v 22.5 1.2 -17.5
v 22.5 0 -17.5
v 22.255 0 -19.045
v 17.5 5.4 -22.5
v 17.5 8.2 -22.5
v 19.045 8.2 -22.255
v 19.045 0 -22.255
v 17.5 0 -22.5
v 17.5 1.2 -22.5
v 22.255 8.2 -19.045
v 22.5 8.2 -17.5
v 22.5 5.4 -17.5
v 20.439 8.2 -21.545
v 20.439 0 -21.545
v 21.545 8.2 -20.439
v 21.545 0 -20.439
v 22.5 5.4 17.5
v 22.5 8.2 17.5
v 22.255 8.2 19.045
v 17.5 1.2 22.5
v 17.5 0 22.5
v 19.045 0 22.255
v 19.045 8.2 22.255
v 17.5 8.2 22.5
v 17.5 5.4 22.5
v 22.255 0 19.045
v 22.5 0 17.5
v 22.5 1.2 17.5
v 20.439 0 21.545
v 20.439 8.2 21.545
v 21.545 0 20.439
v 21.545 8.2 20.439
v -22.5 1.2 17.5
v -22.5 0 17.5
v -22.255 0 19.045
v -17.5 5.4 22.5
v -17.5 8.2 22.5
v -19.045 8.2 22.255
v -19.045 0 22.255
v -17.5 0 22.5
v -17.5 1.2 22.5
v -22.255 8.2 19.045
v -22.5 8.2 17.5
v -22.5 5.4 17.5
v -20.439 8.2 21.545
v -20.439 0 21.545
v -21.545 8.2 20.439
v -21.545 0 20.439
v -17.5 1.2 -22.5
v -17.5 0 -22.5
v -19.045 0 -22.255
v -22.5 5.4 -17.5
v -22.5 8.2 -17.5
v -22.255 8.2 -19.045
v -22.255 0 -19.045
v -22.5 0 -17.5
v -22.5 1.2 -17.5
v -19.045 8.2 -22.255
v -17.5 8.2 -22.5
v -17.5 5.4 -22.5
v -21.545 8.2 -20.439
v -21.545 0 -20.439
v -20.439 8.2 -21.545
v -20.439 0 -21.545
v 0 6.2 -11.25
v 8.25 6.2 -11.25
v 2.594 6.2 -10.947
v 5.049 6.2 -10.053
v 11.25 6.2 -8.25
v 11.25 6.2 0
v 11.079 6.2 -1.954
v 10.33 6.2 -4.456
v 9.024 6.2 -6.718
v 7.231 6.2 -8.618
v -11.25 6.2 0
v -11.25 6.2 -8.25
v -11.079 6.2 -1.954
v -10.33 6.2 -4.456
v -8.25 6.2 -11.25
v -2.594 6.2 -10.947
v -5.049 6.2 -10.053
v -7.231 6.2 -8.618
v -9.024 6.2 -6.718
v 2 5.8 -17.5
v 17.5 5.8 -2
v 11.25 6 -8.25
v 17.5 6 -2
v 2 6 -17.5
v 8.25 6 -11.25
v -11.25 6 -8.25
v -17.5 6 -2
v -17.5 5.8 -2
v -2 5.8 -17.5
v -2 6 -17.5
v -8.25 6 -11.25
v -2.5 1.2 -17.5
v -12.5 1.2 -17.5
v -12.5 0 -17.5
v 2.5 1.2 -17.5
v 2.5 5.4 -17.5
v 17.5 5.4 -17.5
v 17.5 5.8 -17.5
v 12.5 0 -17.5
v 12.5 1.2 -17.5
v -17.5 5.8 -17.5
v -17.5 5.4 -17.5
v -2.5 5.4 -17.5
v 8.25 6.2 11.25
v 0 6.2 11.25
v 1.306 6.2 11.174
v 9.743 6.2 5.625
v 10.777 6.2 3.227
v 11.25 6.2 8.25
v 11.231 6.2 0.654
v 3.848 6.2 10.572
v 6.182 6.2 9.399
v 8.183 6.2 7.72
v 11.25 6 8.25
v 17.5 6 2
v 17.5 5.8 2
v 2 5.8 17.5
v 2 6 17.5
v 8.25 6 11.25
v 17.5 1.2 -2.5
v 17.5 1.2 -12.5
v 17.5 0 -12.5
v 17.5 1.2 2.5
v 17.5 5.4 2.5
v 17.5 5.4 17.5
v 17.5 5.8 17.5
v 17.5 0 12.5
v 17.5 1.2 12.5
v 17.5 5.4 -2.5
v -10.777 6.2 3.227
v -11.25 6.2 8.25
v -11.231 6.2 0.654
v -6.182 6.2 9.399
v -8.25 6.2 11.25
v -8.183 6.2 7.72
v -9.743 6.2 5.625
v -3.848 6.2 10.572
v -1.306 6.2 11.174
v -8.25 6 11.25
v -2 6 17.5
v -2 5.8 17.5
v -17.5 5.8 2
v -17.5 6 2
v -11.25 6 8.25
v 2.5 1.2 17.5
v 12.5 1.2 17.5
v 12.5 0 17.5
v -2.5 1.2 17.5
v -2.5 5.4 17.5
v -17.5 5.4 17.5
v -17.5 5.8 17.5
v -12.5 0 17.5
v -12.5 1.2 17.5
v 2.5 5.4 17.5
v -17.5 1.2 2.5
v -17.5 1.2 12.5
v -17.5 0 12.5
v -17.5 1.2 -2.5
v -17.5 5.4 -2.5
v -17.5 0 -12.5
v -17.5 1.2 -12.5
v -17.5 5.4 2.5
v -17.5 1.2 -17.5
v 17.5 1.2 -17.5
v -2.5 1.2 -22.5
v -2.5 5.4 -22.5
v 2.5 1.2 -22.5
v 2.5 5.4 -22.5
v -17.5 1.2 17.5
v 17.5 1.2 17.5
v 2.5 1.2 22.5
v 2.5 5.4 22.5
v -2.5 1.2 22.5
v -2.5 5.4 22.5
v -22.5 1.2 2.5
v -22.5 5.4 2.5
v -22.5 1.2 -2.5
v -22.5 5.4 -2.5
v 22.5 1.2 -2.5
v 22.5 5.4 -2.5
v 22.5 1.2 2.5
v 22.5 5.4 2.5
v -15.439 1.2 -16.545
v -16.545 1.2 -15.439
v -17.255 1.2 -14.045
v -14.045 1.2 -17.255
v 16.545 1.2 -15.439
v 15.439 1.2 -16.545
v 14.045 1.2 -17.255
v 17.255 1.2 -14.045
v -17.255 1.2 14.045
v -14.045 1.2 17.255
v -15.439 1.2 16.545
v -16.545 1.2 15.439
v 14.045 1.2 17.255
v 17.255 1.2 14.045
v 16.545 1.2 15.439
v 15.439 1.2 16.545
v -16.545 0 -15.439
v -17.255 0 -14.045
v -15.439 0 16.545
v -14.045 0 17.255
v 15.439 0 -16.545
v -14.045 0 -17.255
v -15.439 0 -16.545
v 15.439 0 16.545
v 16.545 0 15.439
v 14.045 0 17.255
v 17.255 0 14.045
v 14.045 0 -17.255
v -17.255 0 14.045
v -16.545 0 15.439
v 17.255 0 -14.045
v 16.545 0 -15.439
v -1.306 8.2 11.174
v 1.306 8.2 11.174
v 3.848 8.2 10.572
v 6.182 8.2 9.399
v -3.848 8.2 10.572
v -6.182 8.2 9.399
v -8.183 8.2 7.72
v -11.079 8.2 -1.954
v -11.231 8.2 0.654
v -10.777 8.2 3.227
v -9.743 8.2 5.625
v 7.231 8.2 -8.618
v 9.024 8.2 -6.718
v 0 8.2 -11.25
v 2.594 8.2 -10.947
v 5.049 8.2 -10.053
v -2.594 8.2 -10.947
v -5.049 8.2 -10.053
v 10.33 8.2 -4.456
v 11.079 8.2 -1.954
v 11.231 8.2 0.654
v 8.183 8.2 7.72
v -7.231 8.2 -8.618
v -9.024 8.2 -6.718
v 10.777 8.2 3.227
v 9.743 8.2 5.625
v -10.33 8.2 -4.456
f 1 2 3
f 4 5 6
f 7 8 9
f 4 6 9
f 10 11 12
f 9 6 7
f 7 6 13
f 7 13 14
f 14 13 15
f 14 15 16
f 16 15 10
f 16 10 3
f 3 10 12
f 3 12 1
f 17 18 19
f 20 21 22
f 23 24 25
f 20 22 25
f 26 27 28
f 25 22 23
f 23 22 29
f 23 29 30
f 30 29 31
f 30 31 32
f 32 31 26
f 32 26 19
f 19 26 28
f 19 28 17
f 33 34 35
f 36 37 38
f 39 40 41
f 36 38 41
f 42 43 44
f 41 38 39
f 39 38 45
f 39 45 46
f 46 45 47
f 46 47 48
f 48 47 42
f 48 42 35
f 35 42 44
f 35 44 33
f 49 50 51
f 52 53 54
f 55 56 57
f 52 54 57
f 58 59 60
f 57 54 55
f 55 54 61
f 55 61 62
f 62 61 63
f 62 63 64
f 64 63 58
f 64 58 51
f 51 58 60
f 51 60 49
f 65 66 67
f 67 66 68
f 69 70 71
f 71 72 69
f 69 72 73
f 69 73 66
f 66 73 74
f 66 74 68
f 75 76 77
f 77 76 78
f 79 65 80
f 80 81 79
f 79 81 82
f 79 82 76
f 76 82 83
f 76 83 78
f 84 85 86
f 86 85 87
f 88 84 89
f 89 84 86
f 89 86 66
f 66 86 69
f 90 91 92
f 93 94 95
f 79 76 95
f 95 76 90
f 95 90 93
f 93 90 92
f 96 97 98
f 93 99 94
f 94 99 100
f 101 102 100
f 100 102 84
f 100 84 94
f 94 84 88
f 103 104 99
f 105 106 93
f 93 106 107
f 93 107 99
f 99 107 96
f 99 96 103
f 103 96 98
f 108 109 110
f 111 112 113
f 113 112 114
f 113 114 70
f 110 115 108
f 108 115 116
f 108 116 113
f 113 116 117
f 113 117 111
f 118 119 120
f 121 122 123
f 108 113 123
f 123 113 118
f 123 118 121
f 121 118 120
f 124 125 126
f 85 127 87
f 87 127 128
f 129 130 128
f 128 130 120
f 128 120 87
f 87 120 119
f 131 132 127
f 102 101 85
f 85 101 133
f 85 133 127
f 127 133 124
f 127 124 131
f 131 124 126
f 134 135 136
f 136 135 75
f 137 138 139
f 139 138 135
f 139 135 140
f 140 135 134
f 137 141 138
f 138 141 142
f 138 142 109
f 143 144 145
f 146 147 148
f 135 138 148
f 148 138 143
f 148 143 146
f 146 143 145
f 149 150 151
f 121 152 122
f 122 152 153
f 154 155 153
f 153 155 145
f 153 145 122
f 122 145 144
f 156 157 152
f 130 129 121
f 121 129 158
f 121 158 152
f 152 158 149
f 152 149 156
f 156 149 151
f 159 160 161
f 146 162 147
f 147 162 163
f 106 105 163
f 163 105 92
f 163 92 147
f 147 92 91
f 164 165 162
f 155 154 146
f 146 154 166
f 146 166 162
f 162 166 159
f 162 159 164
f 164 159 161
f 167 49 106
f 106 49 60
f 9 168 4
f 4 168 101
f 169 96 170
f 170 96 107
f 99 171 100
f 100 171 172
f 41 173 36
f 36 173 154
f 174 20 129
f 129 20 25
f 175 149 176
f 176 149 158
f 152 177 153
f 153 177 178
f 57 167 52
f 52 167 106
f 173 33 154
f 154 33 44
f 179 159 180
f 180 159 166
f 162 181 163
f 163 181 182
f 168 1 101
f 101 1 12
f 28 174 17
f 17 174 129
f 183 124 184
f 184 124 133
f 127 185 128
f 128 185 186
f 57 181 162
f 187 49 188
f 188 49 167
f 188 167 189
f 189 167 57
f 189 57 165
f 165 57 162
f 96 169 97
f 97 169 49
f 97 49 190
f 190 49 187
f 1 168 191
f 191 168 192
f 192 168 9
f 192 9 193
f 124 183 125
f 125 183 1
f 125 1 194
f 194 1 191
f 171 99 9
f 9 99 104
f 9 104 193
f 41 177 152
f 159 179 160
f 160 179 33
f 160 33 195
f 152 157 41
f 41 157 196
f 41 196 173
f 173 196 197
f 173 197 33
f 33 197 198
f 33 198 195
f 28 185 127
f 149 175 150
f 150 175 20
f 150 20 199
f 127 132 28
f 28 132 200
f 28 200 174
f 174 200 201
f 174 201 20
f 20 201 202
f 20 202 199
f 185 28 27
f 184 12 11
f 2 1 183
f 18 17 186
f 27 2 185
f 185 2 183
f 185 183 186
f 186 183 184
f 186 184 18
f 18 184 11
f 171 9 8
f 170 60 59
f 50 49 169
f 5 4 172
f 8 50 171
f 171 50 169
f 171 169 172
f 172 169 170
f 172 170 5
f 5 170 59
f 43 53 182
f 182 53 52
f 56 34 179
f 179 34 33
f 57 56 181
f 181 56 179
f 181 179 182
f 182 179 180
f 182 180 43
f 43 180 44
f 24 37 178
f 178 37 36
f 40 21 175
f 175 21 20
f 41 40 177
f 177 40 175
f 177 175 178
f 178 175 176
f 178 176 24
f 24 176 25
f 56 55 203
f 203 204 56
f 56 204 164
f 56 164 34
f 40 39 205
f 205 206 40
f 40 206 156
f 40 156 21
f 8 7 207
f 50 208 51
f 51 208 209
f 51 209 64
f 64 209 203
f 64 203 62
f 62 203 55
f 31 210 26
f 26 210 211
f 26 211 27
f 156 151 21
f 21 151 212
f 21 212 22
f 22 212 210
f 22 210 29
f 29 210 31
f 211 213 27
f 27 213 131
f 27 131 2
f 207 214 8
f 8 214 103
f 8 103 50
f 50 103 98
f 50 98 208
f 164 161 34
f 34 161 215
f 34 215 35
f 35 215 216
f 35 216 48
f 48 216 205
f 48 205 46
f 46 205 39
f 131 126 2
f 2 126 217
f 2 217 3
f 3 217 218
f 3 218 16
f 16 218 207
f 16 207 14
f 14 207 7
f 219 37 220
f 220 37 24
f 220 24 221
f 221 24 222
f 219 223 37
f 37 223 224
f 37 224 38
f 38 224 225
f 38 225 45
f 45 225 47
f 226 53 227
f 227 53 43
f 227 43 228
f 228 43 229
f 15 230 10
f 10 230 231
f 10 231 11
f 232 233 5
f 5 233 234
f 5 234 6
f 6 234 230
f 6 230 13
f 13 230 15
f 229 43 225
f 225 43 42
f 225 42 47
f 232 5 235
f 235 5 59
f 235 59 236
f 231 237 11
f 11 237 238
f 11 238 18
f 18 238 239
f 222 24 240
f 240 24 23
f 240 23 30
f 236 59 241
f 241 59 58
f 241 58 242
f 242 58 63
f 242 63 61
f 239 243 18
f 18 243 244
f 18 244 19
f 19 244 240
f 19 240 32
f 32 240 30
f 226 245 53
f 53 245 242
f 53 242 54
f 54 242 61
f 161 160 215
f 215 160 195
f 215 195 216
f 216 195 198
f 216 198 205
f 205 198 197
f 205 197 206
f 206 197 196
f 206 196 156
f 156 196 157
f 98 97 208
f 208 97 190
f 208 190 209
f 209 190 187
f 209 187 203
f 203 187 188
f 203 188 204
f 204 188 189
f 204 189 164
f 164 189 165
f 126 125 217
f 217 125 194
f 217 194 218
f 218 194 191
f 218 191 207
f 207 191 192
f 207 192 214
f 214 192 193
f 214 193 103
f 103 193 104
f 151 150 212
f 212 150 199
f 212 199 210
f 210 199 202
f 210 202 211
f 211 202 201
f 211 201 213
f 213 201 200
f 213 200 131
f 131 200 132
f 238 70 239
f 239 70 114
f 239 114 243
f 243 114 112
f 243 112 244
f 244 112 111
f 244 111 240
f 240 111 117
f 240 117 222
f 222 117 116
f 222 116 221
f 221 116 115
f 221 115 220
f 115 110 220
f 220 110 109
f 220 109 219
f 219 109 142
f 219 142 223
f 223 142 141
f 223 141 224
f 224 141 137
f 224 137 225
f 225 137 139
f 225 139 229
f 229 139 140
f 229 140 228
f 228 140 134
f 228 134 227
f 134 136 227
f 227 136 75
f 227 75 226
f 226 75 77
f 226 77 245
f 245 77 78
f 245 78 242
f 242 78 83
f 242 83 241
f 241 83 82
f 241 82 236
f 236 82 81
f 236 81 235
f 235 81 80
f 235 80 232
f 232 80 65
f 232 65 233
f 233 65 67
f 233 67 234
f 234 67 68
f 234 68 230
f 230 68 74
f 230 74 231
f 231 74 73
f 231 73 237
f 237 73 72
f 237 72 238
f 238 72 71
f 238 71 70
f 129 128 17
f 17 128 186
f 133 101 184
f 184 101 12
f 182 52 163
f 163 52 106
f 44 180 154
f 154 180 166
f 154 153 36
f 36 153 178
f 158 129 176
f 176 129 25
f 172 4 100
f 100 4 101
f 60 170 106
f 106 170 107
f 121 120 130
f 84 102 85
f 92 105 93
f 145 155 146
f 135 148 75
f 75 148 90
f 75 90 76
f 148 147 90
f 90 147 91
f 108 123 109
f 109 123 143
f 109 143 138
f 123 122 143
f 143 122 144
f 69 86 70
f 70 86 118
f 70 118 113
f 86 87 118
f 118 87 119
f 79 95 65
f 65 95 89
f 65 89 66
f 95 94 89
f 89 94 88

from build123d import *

# Parameters (mm, degrees)
ESBO_O1_W                = 45
ESBO_O1_H                = 45
BASE_DEPTH               = 1.2
ESBO_O2_W                = 5
ESBO_O2_H                = 5
PAREDES_DEPTH            = 5
ESBO_O3_W                = 45
ESBO_O3_H                = 45
TELHADO_DEPTH            = 2
CORTE_DA_BASE_DEPTH      = 2
ESBO_O5_R                = 11.25
CORTE_DO_C_RCULO_DEPTH   = 2
PONTE_1_REACH            = 48.621
ESBO_O6_W                = 5
ESBO_O6_H                = 0.8
PONTE_2_REACH            = 48.621
ESBO_O7_W                = 5
ESBO_O7_H                = 0.8
RESSALTO_EXTRUS_O6_DEPTH = 0.4
RESSALTO_EXTRUS_O7_DEPTH = 0.2
FILETE1_R                = 5
FILETE2_R                = 5
FILETE3_R                = 5
FILETE4_R                = 5


with BuildPart() as part:
    # Esboço1 → Base (new body)
    with BuildSketch(Plane(origin=(0, 0, 0), x_dir=(1, 0, 0), z_dir=(0, 1, 0))):
        Rectangle(ESBO_O1_W, ESBO_O1_H)
    extrude(amount=BASE_DEPTH)

    # Esboço2 → Paredes (add)
    with BuildSketch(Plane(origin=(0, 1.2, 0), x_dir=(1, 0, 0), z_dir=(0, 1, 0))):
        with Locations((-20, 20)):
            Rectangle(ESBO_O2_W, ESBO_O2_H)
        with Locations((20, 20)):
            Rectangle(ESBO_O2_W, ESBO_O2_H)
        with Locations((20, -20)):
            Rectangle(ESBO_O2_W, ESBO_O2_H)
        with Locations((-20, -20)):
            Rectangle(ESBO_O2_W, ESBO_O2_H)
        with Locations((0, 20)):
            Rectangle(ESBO_O2_W, ESBO_O2_H)
        with Locations((-20, 0)):
            Rectangle(ESBO_O2_W, ESBO_O2_H)
        with Locations((20, 0)):
            Rectangle(ESBO_O2_W, ESBO_O2_H)
        with Locations((0, -20)):
            Rectangle(ESBO_O2_W, ESBO_O2_H)
    extrude(amount=PAREDES_DEPTH)

    # Esboço3 → Telhado (add)
    with BuildSketch(Plane(origin=(0, 6.2, 0), x_dir=(1, 0, 0), z_dir=(0, 1, 0))):
        Rectangle(ESBO_O3_W, ESBO_O3_H)
    extrude(amount=TELHADO_DEPTH)

    # Esboço4 → Corte da Base (cut)
    with BuildSketch(Plane(origin=(0, 1.2, 0), x_dir=(1, 0, 0), z_dir=(0, 1, 0))):
        with BuildLine():
            Line((-12.5, 17.5), (12.5, 17.5))
            ThreePointArc((12.5, 17.5), (16.035533906, 16.035533906), (17.5, 12.5))
            Line((17.5, 12.5), (17.5, -12.5))
            ThreePointArc((17.5, -12.5), (16.035533906, -16.035533906), (12.5, -17.5))
            Line((12.5, -17.5), (-12.5, -17.5))
            ThreePointArc((-12.5, -17.5), (-16.035533906, -16.035533906), (-17.5, -12.5))
            Line((-17.5, -12.5), (-17.5, 12.5))
            ThreePointArc((-17.5, 12.5), (-16.035533906, 16.035533906), (-12.5, 17.5))
        make_face()
    extrude(amount=-CORTE_DA_BASE_DEPTH, mode=Mode.SUBTRACT)

    # Esboço5 → Corte do Círculo (cut)
    with BuildSketch(Plane.XZ.offset(-6.2)):
        with Locations(Location((0, 0, 0), (0, 0, 270))):
            Circle(ESBO_O5_R)
    extrude(amount=-CORTE_DO_C_RCULO_DEPTH, mode=Mode.SUBTRACT)

    # Esboço6 → Ponte 1 (add, up to next)
    with BuildSketch(Plane.XY.offset(-17.5), mode=Mode.PRIVATE) as ponte_1_sk1:
        with Locations((20, 5.8)):
            Rectangle(ESBO_O6_W, ESBO_O6_H)
    ponte_1_tool1 = extrude(ponte_1_sk1.sketch, amount=PONTE_1_REACH, mode=Mode.PRIVATE) - part.part
    # Esboço6 → Ponte 1 (add, up to next)
    with BuildSketch(Plane.XY.offset(-17.5), mode=Mode.PRIVATE) as ponte_1_sk2:
        with Locations((-20, 5.8)):
            Rectangle(ESBO_O6_W, ESBO_O6_H)
    ponte_1_tool2 = extrude(ponte_1_sk2.sketch, amount=PONTE_1_REACH, mode=Mode.PRIVATE) - part.part
    add(ponte_1_tool1.solids().sort_by_distance((20, 5.8, -17.5))[0])
    add(ponte_1_tool1.solids().sort_by_distance((20, 5.8, -17.5))[1])
    add(ponte_1_tool2.solids().sort_by_distance((-20, 5.8, -17.5))[0])
    add(ponte_1_tool2.solids().sort_by_distance((-20, 5.8, -17.5))[1])

    # Esboço7 → Ponte 2 (add, up to next)
    with BuildSketch(Plane.ZY.offset(-17.5), mode=Mode.PRIVATE) as ponte_2_sk1:
        with Locations((20, 5.8)):
            Rectangle(ESBO_O7_W, ESBO_O7_H)
    ponte_2_tool1 = extrude(ponte_2_sk1.sketch, amount=PONTE_2_REACH, mode=Mode.PRIVATE) - part.part
    # Esboço7 → Ponte 2 (add, up to next)
    with BuildSketch(Plane.ZY.offset(-17.5), mode=Mode.PRIVATE) as ponte_2_sk2:
        with Locations((-20, 5.8)):
            Rectangle(ESBO_O7_W, ESBO_O7_H)
    ponte_2_tool2 = extrude(ponte_2_sk2.sketch, amount=PONTE_2_REACH, mode=Mode.PRIVATE) - part.part
    add(ponte_2_tool1.solids().sort_by_distance((17.5, 5.8, 20))[0])
    add(ponte_2_tool1.solids().sort_by_distance((17.5, 5.8, 20))[1])
    add(ponte_2_tool2.solids().sort_by_distance((17.5, 5.8, -20))[0])
    add(ponte_2_tool2.solids().sort_by_distance((17.5, 5.8, -20))[1])

    # Esboço8 → Ressalto-extrusão6 (add)
    with BuildSketch(Plane(origin=(0, 6.2, 0), x_dir=(-1, 0, 0), z_dir=(0, -1, 0))):
        Polygon((-2, -17.5), (-17.5, -2), (-17.5, -17.5), align=None)
        Polygon((-17.5, 2), (-17.5, 17.5), (-2, 17.5), align=None)
        Polygon((2, 17.5), (17.5, 17.5), (17.5, 2), align=None)
        Polygon((17.5, -2), (17.5, -17.5), (2, -17.5), align=None)
    extrude(amount=RESSALTO_EXTRUS_O6_DEPTH)

    # Esboço10 → Ressalto-extrusão7 (add)
    with BuildSketch(Plane.XZ.offset(-6.2)):
        Polygon((-11.25, 8.25), (-11.25, -8.25), (-17.5, -2), (-17.5, 2), align=None)
        Polygon((8.25, 11.25), (2, 17.5), (-2, 17.5), (-8.25, 11.25), align=None)
        Polygon((11.25, -8.25), (17.5, -2), (17.5, 2), (11.25, 8.25), align=None)
        Polygon((-8.25, -11.25), (-2, -17.5), (2, -17.5), (8.25, -11.25), align=None)
    extrude(amount=RESSALTO_EXTRUS_O7_DEPTH)

    # Filete1
    filete1_edges = [part.edges().sort_by_distance(p)[0] for p in [
        (-22.5, 4.1, -22.5),
    ]]
    fillet(filete1_edges, radius=FILETE1_R - 0.0001)  # a hair under: the kernel refuses the full size

    # Filete2
    filete2_edges = [part.edges().sort_by_distance(p)[0] for p in [
        (-22.5, 4.1, 22.5),
    ]]
    fillet(filete2_edges, radius=FILETE2_R - 0.0001)  # a hair under: the kernel refuses the full size

    # Filete3
    filete3_edges = [part.edges().sort_by_distance(p)[0] for p in [
        (22.5, 4.1, 22.5),
    ]]
    fillet(filete3_edges, radius=FILETE3_R - 0.0001)  # a hair under: the kernel refuses the full size

    # Filete4
    filete4_edges = [part.edges().sort_by_distance(p)[0] for p in [
        (22.5, 4.1, -22.5),
    ]]
    fillet(filete4_edges, radius=FILETE4_R - 0.0001)  # a hair under: the kernel refuses the full size


solid = part.part
